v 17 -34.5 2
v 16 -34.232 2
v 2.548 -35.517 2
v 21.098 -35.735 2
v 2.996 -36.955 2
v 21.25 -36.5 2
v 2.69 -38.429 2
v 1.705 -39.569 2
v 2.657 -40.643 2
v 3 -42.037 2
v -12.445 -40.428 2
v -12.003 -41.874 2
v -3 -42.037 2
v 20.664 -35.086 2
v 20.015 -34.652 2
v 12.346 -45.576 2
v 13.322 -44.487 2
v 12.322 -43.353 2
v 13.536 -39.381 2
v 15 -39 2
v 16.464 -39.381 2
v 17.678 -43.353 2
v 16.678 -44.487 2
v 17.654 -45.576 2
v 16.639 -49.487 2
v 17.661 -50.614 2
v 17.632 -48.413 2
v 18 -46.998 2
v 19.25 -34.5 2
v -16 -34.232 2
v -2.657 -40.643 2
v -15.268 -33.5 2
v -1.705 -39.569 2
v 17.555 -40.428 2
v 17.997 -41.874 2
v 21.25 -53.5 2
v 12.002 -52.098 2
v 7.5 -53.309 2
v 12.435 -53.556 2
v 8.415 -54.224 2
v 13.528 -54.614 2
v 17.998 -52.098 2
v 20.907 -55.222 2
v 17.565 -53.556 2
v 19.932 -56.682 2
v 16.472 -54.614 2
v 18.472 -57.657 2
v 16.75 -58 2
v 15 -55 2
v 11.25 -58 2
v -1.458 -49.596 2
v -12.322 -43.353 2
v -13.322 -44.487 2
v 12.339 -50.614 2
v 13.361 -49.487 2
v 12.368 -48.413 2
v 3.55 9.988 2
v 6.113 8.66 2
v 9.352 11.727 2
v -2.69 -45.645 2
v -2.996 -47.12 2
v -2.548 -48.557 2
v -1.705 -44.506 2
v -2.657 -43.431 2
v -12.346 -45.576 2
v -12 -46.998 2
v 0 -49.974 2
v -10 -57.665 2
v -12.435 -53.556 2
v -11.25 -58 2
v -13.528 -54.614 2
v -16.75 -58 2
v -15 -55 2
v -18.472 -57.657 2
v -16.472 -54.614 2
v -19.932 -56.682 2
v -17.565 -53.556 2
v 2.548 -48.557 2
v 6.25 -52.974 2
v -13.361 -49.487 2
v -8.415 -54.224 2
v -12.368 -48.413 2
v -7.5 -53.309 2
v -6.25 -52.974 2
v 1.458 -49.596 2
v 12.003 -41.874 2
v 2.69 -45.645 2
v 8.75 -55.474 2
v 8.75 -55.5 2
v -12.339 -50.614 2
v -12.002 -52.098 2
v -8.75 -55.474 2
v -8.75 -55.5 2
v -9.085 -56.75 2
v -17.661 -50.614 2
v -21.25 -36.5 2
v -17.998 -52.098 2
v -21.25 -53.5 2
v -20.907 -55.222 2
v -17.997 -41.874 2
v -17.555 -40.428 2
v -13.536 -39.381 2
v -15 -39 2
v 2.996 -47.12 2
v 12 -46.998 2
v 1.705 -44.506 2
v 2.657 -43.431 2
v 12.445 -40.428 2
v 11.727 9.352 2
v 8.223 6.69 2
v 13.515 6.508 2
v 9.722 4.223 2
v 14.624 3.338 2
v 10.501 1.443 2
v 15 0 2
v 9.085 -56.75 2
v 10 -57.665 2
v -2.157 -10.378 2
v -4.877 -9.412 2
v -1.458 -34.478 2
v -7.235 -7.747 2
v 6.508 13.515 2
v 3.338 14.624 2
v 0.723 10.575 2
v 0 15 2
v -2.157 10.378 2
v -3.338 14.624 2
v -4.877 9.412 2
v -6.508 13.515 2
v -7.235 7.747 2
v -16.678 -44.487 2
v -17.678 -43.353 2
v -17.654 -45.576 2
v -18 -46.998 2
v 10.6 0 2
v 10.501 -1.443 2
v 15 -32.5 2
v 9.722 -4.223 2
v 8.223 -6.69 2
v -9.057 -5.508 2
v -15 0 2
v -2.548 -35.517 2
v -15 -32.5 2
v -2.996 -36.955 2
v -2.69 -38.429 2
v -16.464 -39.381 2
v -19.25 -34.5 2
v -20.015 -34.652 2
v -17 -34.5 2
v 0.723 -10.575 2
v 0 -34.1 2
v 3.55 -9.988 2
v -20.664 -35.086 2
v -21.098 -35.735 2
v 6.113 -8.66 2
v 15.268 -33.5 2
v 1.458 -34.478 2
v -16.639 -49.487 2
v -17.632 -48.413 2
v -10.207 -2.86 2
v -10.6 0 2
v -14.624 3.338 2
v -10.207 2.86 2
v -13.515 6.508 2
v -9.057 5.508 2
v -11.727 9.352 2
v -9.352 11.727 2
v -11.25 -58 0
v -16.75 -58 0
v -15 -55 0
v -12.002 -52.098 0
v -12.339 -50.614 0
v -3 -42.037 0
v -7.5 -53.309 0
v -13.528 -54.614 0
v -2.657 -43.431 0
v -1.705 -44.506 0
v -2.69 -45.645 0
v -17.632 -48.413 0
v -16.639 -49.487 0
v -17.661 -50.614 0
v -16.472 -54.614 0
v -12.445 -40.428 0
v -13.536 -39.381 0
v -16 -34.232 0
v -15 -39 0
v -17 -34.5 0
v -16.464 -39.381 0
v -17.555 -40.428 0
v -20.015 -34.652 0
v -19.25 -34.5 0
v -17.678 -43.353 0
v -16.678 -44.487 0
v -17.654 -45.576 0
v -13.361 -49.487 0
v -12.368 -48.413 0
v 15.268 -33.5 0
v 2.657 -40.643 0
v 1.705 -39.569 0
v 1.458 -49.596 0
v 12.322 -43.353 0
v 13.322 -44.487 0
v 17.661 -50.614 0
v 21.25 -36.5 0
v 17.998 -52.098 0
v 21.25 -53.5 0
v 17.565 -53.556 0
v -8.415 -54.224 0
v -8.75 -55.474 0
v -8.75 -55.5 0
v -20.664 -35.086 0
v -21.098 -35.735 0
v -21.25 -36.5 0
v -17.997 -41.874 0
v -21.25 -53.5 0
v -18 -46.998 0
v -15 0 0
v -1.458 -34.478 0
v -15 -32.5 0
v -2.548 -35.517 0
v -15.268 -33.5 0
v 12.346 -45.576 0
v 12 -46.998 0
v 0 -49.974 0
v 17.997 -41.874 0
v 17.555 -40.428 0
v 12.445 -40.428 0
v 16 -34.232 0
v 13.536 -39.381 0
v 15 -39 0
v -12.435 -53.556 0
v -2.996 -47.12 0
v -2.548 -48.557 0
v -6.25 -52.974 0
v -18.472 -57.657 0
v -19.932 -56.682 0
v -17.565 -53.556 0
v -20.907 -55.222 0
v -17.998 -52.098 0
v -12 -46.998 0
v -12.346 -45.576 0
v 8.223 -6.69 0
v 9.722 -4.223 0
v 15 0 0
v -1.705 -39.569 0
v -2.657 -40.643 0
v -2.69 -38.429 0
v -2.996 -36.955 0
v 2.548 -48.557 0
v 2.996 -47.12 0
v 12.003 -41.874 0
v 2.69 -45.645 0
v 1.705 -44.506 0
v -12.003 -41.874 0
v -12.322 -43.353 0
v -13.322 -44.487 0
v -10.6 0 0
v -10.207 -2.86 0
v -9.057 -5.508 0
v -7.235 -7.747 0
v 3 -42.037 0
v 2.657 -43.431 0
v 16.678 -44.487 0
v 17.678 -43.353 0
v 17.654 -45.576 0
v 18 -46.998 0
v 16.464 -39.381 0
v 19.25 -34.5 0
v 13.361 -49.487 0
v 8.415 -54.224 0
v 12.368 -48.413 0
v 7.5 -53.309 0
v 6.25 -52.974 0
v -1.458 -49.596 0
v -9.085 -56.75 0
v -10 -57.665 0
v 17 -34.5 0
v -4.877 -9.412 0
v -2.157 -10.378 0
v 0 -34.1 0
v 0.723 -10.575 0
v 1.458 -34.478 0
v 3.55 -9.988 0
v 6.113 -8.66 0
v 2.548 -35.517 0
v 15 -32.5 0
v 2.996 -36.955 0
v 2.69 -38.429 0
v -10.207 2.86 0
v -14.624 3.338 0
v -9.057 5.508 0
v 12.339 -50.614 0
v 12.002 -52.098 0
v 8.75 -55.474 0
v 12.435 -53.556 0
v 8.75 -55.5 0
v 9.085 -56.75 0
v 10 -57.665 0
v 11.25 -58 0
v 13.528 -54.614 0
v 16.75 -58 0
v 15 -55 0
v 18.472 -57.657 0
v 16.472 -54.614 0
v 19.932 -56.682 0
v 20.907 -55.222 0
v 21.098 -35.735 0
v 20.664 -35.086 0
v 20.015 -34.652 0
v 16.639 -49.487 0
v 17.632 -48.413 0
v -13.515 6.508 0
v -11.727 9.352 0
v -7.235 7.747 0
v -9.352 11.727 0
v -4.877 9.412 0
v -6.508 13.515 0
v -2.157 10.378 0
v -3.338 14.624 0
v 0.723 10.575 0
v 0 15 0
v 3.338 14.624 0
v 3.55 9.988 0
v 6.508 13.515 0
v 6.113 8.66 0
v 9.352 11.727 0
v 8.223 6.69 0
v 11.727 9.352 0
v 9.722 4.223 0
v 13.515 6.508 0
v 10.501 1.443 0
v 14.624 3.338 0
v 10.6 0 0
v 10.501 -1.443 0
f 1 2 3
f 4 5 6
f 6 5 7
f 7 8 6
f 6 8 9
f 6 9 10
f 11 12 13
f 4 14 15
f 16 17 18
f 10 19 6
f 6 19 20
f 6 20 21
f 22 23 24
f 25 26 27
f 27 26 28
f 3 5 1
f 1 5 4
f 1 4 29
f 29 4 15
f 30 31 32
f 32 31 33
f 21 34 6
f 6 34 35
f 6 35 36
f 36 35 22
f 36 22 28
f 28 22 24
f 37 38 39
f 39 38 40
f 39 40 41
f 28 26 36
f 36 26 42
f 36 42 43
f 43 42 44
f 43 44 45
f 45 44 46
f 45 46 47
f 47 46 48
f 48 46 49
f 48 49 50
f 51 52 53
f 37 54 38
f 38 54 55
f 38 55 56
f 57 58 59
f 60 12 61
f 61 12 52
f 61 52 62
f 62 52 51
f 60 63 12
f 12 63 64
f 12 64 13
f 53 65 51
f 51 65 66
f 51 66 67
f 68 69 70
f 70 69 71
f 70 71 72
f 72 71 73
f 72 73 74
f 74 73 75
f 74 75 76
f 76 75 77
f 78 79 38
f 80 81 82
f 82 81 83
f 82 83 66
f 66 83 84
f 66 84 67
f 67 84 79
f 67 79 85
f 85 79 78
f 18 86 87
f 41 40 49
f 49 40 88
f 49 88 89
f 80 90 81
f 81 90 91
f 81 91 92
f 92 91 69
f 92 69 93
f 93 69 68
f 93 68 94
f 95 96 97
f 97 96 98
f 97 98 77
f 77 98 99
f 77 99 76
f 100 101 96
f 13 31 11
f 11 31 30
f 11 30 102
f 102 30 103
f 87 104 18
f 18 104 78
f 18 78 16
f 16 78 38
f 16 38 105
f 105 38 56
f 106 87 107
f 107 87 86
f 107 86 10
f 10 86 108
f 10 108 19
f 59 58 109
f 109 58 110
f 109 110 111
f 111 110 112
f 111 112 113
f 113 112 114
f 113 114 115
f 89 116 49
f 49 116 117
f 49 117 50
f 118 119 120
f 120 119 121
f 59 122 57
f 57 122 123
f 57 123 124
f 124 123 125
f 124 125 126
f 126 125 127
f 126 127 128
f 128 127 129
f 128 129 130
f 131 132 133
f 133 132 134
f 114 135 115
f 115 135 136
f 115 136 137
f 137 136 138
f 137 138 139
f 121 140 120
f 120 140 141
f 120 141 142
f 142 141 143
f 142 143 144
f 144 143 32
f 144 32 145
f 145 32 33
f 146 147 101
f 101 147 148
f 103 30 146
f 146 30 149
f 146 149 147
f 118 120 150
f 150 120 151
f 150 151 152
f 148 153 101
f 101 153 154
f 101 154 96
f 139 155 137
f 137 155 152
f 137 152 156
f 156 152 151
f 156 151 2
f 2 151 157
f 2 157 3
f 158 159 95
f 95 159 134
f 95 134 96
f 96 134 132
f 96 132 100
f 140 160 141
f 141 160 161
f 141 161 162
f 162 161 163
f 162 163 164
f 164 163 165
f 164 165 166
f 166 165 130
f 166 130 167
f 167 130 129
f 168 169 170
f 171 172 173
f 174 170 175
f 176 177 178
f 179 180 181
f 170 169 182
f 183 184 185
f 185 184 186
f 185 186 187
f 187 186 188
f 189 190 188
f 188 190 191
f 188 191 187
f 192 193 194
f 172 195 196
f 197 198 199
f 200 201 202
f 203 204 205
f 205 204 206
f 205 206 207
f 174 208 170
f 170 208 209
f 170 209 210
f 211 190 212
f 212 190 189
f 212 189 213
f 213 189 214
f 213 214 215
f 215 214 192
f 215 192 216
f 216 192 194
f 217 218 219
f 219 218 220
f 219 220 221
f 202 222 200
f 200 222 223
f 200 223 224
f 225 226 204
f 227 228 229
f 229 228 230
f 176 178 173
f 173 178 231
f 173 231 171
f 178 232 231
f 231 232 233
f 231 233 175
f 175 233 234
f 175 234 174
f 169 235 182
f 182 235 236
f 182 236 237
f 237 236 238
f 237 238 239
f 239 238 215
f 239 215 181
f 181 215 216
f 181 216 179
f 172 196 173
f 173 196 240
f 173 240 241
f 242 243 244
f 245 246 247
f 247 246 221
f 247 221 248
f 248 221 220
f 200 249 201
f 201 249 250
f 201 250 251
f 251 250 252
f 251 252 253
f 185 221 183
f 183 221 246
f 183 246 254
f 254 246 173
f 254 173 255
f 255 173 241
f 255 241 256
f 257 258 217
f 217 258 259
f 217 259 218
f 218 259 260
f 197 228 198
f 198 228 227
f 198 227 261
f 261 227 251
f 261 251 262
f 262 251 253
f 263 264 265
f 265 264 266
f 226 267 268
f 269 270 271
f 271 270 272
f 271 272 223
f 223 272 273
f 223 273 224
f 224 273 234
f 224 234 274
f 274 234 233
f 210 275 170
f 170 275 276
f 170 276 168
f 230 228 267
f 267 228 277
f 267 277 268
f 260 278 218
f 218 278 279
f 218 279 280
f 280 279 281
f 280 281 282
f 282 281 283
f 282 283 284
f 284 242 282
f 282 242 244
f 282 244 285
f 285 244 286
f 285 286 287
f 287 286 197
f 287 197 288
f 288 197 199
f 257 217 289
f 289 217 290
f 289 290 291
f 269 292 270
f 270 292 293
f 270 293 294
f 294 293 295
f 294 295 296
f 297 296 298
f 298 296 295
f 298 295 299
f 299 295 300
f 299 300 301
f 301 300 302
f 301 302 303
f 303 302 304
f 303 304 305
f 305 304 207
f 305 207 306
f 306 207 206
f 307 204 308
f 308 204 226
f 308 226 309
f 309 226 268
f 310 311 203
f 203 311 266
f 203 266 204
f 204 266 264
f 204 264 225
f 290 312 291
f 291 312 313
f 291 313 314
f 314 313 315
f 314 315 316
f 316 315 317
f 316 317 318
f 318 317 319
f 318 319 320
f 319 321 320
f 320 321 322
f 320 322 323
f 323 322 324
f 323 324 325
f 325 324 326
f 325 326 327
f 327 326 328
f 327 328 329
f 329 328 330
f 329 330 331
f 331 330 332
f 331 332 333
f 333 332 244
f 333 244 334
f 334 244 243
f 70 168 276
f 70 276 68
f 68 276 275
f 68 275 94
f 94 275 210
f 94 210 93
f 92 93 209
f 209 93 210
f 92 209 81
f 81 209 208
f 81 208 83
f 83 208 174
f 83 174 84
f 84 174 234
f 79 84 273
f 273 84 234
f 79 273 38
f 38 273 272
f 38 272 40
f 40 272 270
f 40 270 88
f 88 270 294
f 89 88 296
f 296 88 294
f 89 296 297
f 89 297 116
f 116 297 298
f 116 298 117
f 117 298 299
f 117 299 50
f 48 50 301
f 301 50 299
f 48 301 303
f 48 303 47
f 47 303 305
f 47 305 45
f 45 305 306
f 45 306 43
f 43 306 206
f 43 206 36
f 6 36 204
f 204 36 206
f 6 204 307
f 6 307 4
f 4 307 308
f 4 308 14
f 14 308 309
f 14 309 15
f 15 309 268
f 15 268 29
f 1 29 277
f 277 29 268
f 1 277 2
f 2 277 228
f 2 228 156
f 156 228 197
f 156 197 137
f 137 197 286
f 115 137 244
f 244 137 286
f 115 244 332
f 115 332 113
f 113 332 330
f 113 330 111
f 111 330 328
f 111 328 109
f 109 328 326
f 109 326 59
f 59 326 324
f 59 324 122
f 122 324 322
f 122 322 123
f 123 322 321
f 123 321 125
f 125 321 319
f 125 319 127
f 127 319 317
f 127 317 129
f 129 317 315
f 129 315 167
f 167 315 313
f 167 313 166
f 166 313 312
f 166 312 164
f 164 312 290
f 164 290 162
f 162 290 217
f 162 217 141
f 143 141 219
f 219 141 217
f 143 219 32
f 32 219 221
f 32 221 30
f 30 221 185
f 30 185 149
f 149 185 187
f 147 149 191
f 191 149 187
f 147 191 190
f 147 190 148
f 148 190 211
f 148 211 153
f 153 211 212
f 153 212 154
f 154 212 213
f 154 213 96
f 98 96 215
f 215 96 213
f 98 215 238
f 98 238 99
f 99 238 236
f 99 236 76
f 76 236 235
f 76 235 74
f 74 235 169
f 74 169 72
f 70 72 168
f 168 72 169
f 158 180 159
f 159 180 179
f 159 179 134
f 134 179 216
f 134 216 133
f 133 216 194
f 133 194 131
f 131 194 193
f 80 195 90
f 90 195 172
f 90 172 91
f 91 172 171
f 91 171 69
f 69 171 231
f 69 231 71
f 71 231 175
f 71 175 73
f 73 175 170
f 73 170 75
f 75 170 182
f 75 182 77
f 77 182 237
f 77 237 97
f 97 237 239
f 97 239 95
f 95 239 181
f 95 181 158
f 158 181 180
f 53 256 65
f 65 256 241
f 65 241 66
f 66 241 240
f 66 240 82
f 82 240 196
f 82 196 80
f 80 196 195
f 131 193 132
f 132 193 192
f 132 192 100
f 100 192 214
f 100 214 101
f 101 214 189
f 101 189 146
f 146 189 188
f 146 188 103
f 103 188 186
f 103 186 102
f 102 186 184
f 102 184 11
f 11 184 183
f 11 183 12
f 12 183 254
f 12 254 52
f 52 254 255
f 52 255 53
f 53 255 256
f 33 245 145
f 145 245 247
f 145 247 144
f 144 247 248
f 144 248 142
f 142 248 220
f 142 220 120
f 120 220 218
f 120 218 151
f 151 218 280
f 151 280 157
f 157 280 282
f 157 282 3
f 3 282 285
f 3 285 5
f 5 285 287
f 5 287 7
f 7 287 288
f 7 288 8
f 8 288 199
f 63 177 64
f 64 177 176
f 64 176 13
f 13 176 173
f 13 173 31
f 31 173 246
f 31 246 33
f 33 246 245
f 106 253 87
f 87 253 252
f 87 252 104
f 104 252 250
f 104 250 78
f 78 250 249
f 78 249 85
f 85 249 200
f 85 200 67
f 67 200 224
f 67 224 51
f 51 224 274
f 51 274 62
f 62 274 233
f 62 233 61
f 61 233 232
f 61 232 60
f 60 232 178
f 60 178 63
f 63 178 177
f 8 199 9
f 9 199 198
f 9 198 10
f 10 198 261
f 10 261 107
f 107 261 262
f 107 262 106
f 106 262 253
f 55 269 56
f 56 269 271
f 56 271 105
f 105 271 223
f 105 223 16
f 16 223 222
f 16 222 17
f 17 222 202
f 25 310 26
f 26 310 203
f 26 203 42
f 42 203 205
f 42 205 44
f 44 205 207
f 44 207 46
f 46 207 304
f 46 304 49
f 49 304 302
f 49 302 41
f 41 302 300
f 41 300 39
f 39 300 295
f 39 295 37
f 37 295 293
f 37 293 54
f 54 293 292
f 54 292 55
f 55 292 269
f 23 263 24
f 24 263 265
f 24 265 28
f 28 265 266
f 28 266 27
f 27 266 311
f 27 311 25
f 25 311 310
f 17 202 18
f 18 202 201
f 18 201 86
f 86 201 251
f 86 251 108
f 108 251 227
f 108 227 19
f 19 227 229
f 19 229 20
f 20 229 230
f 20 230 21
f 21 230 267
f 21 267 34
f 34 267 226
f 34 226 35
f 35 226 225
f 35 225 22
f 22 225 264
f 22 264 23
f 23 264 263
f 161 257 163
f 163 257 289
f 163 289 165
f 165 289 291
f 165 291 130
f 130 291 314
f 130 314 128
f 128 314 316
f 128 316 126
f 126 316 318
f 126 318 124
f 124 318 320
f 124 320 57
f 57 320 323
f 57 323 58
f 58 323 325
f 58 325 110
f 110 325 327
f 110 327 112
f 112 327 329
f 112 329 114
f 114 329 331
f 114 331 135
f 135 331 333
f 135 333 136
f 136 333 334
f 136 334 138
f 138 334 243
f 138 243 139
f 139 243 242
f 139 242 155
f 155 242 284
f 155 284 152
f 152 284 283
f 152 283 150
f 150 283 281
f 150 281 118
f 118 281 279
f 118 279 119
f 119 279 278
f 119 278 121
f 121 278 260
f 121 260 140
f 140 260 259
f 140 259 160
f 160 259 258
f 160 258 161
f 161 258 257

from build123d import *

# Parameters (mm, degrees)
SKETCH_1_R      = 10.5
EXTRUDE_1_DEPTH = 2


with BuildPart() as part:
    # 草图1 → 凸台-拉伸1 (new body)
    with BuildSketch(Plane.XY):
        with BuildLine():
            Line((-15, 0), (-15, -32.5))
            ThreePointArc((-15, -32.5), (-15.585786438, -33.914213562), (-17, -34.5))
            Line((-17, -34.5), (-19.25, -34.5))
            ThreePointArc((-19.25, -34.5), (-20.664213562, -35.085786438), (-21.25, -36.5))
            Line((-21.25, -36.5), (-21.25, -53.5))
            ThreePointArc((-21.25, -53.5), (-19.931980515, -56.681980515), (-16.75, -58))
            Line((-16.75, -58), (-11.25, -58))
            ThreePointArc((-11.25, -58), (-9.482233047, -57.267766953), (-8.75, -55.5))
            Line((-8.75, -55.5), (-8.75, -55.474127277))
            ThreePointArc((-8.75, -55.474127277), (-8.017766953, -53.706360324), (-6.25, -52.974127277))
            Line((-6.25, -52.974127277), (6.25, -52.974127277))
            ThreePointArc((6.25, -52.974127277), (8.017766953, -53.706360324), (8.75, -55.474127277))
            Line((8.75, -55.474127277), (8.75, -55.5))
            ThreePointArc((8.75, -55.5), (9.482233047, -57.267766953), (11.25, -58))
            Line((11.25, -58), (16.75, -58))
            ThreePointArc((16.75, -58), (19.931980515, -56.681980515), (21.25, -53.5))
            Line((21.25, -53.5), (21.25, -36.5))
            ThreePointArc((21.25, -36.5), (20.664213562, -35.085786438), (19.25, -34.5))
            Line((19.25, -34.5), (17, -34.5))
            ThreePointArc((17, -34.5), (15.585786438, -33.914213562), (15, -32.5))
            Line((15, -32.5), (15, 0))
            ThreePointArc((15, 0), (0, 15), (-15, 0))
        make_face()
        Circle(SKETCH_1_R, mode=Mode.SUBTRACT)
        with BuildLine():
            ThreePointArc((-16.638642988, -49.487063639), (-15, -55), (-13.361357012, -49.487063639))
            ThreePointArc((-13.361357012, -49.487063639), (-12.000091296, -46.997531654), (-13.322348529, -44.487063639))
            ThreePointArc((-13.322348529, -44.487063639), (-15, -39), (-16.677651471, -44.487063639))
            ThreePointArc((-16.677651471, -44.487063639), (-17.999908704, -46.997531654), (-16.638642988, -49.487063639))
        make_face(mode=Mode.SUBTRACT)
        with BuildLine():
            ThreePointArc((-1.704802234, -39.568531819), (-3, -42.037063639), (-1.704802234, -44.505595458))
            ThreePointArc((-1.704802234, -44.505595458), (0, -49.974127277), (1.704802234, -44.505595458))
            ThreePointArc((1.704802234, -44.505595458), (3, -42.037063639), (1.704802234, -39.568531819))
            ThreePointArc((1.704802234, -39.568531819), (0, -34.1), (-1.704802234, -39.568531819))
        make_face(mode=Mode.SUBTRACT)
        with BuildLine():
            ThreePointArc((13.361357012, -49.487063639), (15, -55), (16.638642988, -49.487063639))
            ThreePointArc((16.638642988, -49.487063639), (17.999908704, -46.997531654), (16.677651471, -44.487063639))
            ThreePointArc((16.677651471, -44.487063639), (15, -39), (13.322348529, -44.487063639))
            ThreePointArc((13.322348529, -44.487063639), (12.000091296, -46.997531654), (13.361357012, -49.487063639))
        make_face(mode=Mode.SUBTRACT)
    extrude(amount=EXTRUDE_1_DEPTH)


solid = part.part
